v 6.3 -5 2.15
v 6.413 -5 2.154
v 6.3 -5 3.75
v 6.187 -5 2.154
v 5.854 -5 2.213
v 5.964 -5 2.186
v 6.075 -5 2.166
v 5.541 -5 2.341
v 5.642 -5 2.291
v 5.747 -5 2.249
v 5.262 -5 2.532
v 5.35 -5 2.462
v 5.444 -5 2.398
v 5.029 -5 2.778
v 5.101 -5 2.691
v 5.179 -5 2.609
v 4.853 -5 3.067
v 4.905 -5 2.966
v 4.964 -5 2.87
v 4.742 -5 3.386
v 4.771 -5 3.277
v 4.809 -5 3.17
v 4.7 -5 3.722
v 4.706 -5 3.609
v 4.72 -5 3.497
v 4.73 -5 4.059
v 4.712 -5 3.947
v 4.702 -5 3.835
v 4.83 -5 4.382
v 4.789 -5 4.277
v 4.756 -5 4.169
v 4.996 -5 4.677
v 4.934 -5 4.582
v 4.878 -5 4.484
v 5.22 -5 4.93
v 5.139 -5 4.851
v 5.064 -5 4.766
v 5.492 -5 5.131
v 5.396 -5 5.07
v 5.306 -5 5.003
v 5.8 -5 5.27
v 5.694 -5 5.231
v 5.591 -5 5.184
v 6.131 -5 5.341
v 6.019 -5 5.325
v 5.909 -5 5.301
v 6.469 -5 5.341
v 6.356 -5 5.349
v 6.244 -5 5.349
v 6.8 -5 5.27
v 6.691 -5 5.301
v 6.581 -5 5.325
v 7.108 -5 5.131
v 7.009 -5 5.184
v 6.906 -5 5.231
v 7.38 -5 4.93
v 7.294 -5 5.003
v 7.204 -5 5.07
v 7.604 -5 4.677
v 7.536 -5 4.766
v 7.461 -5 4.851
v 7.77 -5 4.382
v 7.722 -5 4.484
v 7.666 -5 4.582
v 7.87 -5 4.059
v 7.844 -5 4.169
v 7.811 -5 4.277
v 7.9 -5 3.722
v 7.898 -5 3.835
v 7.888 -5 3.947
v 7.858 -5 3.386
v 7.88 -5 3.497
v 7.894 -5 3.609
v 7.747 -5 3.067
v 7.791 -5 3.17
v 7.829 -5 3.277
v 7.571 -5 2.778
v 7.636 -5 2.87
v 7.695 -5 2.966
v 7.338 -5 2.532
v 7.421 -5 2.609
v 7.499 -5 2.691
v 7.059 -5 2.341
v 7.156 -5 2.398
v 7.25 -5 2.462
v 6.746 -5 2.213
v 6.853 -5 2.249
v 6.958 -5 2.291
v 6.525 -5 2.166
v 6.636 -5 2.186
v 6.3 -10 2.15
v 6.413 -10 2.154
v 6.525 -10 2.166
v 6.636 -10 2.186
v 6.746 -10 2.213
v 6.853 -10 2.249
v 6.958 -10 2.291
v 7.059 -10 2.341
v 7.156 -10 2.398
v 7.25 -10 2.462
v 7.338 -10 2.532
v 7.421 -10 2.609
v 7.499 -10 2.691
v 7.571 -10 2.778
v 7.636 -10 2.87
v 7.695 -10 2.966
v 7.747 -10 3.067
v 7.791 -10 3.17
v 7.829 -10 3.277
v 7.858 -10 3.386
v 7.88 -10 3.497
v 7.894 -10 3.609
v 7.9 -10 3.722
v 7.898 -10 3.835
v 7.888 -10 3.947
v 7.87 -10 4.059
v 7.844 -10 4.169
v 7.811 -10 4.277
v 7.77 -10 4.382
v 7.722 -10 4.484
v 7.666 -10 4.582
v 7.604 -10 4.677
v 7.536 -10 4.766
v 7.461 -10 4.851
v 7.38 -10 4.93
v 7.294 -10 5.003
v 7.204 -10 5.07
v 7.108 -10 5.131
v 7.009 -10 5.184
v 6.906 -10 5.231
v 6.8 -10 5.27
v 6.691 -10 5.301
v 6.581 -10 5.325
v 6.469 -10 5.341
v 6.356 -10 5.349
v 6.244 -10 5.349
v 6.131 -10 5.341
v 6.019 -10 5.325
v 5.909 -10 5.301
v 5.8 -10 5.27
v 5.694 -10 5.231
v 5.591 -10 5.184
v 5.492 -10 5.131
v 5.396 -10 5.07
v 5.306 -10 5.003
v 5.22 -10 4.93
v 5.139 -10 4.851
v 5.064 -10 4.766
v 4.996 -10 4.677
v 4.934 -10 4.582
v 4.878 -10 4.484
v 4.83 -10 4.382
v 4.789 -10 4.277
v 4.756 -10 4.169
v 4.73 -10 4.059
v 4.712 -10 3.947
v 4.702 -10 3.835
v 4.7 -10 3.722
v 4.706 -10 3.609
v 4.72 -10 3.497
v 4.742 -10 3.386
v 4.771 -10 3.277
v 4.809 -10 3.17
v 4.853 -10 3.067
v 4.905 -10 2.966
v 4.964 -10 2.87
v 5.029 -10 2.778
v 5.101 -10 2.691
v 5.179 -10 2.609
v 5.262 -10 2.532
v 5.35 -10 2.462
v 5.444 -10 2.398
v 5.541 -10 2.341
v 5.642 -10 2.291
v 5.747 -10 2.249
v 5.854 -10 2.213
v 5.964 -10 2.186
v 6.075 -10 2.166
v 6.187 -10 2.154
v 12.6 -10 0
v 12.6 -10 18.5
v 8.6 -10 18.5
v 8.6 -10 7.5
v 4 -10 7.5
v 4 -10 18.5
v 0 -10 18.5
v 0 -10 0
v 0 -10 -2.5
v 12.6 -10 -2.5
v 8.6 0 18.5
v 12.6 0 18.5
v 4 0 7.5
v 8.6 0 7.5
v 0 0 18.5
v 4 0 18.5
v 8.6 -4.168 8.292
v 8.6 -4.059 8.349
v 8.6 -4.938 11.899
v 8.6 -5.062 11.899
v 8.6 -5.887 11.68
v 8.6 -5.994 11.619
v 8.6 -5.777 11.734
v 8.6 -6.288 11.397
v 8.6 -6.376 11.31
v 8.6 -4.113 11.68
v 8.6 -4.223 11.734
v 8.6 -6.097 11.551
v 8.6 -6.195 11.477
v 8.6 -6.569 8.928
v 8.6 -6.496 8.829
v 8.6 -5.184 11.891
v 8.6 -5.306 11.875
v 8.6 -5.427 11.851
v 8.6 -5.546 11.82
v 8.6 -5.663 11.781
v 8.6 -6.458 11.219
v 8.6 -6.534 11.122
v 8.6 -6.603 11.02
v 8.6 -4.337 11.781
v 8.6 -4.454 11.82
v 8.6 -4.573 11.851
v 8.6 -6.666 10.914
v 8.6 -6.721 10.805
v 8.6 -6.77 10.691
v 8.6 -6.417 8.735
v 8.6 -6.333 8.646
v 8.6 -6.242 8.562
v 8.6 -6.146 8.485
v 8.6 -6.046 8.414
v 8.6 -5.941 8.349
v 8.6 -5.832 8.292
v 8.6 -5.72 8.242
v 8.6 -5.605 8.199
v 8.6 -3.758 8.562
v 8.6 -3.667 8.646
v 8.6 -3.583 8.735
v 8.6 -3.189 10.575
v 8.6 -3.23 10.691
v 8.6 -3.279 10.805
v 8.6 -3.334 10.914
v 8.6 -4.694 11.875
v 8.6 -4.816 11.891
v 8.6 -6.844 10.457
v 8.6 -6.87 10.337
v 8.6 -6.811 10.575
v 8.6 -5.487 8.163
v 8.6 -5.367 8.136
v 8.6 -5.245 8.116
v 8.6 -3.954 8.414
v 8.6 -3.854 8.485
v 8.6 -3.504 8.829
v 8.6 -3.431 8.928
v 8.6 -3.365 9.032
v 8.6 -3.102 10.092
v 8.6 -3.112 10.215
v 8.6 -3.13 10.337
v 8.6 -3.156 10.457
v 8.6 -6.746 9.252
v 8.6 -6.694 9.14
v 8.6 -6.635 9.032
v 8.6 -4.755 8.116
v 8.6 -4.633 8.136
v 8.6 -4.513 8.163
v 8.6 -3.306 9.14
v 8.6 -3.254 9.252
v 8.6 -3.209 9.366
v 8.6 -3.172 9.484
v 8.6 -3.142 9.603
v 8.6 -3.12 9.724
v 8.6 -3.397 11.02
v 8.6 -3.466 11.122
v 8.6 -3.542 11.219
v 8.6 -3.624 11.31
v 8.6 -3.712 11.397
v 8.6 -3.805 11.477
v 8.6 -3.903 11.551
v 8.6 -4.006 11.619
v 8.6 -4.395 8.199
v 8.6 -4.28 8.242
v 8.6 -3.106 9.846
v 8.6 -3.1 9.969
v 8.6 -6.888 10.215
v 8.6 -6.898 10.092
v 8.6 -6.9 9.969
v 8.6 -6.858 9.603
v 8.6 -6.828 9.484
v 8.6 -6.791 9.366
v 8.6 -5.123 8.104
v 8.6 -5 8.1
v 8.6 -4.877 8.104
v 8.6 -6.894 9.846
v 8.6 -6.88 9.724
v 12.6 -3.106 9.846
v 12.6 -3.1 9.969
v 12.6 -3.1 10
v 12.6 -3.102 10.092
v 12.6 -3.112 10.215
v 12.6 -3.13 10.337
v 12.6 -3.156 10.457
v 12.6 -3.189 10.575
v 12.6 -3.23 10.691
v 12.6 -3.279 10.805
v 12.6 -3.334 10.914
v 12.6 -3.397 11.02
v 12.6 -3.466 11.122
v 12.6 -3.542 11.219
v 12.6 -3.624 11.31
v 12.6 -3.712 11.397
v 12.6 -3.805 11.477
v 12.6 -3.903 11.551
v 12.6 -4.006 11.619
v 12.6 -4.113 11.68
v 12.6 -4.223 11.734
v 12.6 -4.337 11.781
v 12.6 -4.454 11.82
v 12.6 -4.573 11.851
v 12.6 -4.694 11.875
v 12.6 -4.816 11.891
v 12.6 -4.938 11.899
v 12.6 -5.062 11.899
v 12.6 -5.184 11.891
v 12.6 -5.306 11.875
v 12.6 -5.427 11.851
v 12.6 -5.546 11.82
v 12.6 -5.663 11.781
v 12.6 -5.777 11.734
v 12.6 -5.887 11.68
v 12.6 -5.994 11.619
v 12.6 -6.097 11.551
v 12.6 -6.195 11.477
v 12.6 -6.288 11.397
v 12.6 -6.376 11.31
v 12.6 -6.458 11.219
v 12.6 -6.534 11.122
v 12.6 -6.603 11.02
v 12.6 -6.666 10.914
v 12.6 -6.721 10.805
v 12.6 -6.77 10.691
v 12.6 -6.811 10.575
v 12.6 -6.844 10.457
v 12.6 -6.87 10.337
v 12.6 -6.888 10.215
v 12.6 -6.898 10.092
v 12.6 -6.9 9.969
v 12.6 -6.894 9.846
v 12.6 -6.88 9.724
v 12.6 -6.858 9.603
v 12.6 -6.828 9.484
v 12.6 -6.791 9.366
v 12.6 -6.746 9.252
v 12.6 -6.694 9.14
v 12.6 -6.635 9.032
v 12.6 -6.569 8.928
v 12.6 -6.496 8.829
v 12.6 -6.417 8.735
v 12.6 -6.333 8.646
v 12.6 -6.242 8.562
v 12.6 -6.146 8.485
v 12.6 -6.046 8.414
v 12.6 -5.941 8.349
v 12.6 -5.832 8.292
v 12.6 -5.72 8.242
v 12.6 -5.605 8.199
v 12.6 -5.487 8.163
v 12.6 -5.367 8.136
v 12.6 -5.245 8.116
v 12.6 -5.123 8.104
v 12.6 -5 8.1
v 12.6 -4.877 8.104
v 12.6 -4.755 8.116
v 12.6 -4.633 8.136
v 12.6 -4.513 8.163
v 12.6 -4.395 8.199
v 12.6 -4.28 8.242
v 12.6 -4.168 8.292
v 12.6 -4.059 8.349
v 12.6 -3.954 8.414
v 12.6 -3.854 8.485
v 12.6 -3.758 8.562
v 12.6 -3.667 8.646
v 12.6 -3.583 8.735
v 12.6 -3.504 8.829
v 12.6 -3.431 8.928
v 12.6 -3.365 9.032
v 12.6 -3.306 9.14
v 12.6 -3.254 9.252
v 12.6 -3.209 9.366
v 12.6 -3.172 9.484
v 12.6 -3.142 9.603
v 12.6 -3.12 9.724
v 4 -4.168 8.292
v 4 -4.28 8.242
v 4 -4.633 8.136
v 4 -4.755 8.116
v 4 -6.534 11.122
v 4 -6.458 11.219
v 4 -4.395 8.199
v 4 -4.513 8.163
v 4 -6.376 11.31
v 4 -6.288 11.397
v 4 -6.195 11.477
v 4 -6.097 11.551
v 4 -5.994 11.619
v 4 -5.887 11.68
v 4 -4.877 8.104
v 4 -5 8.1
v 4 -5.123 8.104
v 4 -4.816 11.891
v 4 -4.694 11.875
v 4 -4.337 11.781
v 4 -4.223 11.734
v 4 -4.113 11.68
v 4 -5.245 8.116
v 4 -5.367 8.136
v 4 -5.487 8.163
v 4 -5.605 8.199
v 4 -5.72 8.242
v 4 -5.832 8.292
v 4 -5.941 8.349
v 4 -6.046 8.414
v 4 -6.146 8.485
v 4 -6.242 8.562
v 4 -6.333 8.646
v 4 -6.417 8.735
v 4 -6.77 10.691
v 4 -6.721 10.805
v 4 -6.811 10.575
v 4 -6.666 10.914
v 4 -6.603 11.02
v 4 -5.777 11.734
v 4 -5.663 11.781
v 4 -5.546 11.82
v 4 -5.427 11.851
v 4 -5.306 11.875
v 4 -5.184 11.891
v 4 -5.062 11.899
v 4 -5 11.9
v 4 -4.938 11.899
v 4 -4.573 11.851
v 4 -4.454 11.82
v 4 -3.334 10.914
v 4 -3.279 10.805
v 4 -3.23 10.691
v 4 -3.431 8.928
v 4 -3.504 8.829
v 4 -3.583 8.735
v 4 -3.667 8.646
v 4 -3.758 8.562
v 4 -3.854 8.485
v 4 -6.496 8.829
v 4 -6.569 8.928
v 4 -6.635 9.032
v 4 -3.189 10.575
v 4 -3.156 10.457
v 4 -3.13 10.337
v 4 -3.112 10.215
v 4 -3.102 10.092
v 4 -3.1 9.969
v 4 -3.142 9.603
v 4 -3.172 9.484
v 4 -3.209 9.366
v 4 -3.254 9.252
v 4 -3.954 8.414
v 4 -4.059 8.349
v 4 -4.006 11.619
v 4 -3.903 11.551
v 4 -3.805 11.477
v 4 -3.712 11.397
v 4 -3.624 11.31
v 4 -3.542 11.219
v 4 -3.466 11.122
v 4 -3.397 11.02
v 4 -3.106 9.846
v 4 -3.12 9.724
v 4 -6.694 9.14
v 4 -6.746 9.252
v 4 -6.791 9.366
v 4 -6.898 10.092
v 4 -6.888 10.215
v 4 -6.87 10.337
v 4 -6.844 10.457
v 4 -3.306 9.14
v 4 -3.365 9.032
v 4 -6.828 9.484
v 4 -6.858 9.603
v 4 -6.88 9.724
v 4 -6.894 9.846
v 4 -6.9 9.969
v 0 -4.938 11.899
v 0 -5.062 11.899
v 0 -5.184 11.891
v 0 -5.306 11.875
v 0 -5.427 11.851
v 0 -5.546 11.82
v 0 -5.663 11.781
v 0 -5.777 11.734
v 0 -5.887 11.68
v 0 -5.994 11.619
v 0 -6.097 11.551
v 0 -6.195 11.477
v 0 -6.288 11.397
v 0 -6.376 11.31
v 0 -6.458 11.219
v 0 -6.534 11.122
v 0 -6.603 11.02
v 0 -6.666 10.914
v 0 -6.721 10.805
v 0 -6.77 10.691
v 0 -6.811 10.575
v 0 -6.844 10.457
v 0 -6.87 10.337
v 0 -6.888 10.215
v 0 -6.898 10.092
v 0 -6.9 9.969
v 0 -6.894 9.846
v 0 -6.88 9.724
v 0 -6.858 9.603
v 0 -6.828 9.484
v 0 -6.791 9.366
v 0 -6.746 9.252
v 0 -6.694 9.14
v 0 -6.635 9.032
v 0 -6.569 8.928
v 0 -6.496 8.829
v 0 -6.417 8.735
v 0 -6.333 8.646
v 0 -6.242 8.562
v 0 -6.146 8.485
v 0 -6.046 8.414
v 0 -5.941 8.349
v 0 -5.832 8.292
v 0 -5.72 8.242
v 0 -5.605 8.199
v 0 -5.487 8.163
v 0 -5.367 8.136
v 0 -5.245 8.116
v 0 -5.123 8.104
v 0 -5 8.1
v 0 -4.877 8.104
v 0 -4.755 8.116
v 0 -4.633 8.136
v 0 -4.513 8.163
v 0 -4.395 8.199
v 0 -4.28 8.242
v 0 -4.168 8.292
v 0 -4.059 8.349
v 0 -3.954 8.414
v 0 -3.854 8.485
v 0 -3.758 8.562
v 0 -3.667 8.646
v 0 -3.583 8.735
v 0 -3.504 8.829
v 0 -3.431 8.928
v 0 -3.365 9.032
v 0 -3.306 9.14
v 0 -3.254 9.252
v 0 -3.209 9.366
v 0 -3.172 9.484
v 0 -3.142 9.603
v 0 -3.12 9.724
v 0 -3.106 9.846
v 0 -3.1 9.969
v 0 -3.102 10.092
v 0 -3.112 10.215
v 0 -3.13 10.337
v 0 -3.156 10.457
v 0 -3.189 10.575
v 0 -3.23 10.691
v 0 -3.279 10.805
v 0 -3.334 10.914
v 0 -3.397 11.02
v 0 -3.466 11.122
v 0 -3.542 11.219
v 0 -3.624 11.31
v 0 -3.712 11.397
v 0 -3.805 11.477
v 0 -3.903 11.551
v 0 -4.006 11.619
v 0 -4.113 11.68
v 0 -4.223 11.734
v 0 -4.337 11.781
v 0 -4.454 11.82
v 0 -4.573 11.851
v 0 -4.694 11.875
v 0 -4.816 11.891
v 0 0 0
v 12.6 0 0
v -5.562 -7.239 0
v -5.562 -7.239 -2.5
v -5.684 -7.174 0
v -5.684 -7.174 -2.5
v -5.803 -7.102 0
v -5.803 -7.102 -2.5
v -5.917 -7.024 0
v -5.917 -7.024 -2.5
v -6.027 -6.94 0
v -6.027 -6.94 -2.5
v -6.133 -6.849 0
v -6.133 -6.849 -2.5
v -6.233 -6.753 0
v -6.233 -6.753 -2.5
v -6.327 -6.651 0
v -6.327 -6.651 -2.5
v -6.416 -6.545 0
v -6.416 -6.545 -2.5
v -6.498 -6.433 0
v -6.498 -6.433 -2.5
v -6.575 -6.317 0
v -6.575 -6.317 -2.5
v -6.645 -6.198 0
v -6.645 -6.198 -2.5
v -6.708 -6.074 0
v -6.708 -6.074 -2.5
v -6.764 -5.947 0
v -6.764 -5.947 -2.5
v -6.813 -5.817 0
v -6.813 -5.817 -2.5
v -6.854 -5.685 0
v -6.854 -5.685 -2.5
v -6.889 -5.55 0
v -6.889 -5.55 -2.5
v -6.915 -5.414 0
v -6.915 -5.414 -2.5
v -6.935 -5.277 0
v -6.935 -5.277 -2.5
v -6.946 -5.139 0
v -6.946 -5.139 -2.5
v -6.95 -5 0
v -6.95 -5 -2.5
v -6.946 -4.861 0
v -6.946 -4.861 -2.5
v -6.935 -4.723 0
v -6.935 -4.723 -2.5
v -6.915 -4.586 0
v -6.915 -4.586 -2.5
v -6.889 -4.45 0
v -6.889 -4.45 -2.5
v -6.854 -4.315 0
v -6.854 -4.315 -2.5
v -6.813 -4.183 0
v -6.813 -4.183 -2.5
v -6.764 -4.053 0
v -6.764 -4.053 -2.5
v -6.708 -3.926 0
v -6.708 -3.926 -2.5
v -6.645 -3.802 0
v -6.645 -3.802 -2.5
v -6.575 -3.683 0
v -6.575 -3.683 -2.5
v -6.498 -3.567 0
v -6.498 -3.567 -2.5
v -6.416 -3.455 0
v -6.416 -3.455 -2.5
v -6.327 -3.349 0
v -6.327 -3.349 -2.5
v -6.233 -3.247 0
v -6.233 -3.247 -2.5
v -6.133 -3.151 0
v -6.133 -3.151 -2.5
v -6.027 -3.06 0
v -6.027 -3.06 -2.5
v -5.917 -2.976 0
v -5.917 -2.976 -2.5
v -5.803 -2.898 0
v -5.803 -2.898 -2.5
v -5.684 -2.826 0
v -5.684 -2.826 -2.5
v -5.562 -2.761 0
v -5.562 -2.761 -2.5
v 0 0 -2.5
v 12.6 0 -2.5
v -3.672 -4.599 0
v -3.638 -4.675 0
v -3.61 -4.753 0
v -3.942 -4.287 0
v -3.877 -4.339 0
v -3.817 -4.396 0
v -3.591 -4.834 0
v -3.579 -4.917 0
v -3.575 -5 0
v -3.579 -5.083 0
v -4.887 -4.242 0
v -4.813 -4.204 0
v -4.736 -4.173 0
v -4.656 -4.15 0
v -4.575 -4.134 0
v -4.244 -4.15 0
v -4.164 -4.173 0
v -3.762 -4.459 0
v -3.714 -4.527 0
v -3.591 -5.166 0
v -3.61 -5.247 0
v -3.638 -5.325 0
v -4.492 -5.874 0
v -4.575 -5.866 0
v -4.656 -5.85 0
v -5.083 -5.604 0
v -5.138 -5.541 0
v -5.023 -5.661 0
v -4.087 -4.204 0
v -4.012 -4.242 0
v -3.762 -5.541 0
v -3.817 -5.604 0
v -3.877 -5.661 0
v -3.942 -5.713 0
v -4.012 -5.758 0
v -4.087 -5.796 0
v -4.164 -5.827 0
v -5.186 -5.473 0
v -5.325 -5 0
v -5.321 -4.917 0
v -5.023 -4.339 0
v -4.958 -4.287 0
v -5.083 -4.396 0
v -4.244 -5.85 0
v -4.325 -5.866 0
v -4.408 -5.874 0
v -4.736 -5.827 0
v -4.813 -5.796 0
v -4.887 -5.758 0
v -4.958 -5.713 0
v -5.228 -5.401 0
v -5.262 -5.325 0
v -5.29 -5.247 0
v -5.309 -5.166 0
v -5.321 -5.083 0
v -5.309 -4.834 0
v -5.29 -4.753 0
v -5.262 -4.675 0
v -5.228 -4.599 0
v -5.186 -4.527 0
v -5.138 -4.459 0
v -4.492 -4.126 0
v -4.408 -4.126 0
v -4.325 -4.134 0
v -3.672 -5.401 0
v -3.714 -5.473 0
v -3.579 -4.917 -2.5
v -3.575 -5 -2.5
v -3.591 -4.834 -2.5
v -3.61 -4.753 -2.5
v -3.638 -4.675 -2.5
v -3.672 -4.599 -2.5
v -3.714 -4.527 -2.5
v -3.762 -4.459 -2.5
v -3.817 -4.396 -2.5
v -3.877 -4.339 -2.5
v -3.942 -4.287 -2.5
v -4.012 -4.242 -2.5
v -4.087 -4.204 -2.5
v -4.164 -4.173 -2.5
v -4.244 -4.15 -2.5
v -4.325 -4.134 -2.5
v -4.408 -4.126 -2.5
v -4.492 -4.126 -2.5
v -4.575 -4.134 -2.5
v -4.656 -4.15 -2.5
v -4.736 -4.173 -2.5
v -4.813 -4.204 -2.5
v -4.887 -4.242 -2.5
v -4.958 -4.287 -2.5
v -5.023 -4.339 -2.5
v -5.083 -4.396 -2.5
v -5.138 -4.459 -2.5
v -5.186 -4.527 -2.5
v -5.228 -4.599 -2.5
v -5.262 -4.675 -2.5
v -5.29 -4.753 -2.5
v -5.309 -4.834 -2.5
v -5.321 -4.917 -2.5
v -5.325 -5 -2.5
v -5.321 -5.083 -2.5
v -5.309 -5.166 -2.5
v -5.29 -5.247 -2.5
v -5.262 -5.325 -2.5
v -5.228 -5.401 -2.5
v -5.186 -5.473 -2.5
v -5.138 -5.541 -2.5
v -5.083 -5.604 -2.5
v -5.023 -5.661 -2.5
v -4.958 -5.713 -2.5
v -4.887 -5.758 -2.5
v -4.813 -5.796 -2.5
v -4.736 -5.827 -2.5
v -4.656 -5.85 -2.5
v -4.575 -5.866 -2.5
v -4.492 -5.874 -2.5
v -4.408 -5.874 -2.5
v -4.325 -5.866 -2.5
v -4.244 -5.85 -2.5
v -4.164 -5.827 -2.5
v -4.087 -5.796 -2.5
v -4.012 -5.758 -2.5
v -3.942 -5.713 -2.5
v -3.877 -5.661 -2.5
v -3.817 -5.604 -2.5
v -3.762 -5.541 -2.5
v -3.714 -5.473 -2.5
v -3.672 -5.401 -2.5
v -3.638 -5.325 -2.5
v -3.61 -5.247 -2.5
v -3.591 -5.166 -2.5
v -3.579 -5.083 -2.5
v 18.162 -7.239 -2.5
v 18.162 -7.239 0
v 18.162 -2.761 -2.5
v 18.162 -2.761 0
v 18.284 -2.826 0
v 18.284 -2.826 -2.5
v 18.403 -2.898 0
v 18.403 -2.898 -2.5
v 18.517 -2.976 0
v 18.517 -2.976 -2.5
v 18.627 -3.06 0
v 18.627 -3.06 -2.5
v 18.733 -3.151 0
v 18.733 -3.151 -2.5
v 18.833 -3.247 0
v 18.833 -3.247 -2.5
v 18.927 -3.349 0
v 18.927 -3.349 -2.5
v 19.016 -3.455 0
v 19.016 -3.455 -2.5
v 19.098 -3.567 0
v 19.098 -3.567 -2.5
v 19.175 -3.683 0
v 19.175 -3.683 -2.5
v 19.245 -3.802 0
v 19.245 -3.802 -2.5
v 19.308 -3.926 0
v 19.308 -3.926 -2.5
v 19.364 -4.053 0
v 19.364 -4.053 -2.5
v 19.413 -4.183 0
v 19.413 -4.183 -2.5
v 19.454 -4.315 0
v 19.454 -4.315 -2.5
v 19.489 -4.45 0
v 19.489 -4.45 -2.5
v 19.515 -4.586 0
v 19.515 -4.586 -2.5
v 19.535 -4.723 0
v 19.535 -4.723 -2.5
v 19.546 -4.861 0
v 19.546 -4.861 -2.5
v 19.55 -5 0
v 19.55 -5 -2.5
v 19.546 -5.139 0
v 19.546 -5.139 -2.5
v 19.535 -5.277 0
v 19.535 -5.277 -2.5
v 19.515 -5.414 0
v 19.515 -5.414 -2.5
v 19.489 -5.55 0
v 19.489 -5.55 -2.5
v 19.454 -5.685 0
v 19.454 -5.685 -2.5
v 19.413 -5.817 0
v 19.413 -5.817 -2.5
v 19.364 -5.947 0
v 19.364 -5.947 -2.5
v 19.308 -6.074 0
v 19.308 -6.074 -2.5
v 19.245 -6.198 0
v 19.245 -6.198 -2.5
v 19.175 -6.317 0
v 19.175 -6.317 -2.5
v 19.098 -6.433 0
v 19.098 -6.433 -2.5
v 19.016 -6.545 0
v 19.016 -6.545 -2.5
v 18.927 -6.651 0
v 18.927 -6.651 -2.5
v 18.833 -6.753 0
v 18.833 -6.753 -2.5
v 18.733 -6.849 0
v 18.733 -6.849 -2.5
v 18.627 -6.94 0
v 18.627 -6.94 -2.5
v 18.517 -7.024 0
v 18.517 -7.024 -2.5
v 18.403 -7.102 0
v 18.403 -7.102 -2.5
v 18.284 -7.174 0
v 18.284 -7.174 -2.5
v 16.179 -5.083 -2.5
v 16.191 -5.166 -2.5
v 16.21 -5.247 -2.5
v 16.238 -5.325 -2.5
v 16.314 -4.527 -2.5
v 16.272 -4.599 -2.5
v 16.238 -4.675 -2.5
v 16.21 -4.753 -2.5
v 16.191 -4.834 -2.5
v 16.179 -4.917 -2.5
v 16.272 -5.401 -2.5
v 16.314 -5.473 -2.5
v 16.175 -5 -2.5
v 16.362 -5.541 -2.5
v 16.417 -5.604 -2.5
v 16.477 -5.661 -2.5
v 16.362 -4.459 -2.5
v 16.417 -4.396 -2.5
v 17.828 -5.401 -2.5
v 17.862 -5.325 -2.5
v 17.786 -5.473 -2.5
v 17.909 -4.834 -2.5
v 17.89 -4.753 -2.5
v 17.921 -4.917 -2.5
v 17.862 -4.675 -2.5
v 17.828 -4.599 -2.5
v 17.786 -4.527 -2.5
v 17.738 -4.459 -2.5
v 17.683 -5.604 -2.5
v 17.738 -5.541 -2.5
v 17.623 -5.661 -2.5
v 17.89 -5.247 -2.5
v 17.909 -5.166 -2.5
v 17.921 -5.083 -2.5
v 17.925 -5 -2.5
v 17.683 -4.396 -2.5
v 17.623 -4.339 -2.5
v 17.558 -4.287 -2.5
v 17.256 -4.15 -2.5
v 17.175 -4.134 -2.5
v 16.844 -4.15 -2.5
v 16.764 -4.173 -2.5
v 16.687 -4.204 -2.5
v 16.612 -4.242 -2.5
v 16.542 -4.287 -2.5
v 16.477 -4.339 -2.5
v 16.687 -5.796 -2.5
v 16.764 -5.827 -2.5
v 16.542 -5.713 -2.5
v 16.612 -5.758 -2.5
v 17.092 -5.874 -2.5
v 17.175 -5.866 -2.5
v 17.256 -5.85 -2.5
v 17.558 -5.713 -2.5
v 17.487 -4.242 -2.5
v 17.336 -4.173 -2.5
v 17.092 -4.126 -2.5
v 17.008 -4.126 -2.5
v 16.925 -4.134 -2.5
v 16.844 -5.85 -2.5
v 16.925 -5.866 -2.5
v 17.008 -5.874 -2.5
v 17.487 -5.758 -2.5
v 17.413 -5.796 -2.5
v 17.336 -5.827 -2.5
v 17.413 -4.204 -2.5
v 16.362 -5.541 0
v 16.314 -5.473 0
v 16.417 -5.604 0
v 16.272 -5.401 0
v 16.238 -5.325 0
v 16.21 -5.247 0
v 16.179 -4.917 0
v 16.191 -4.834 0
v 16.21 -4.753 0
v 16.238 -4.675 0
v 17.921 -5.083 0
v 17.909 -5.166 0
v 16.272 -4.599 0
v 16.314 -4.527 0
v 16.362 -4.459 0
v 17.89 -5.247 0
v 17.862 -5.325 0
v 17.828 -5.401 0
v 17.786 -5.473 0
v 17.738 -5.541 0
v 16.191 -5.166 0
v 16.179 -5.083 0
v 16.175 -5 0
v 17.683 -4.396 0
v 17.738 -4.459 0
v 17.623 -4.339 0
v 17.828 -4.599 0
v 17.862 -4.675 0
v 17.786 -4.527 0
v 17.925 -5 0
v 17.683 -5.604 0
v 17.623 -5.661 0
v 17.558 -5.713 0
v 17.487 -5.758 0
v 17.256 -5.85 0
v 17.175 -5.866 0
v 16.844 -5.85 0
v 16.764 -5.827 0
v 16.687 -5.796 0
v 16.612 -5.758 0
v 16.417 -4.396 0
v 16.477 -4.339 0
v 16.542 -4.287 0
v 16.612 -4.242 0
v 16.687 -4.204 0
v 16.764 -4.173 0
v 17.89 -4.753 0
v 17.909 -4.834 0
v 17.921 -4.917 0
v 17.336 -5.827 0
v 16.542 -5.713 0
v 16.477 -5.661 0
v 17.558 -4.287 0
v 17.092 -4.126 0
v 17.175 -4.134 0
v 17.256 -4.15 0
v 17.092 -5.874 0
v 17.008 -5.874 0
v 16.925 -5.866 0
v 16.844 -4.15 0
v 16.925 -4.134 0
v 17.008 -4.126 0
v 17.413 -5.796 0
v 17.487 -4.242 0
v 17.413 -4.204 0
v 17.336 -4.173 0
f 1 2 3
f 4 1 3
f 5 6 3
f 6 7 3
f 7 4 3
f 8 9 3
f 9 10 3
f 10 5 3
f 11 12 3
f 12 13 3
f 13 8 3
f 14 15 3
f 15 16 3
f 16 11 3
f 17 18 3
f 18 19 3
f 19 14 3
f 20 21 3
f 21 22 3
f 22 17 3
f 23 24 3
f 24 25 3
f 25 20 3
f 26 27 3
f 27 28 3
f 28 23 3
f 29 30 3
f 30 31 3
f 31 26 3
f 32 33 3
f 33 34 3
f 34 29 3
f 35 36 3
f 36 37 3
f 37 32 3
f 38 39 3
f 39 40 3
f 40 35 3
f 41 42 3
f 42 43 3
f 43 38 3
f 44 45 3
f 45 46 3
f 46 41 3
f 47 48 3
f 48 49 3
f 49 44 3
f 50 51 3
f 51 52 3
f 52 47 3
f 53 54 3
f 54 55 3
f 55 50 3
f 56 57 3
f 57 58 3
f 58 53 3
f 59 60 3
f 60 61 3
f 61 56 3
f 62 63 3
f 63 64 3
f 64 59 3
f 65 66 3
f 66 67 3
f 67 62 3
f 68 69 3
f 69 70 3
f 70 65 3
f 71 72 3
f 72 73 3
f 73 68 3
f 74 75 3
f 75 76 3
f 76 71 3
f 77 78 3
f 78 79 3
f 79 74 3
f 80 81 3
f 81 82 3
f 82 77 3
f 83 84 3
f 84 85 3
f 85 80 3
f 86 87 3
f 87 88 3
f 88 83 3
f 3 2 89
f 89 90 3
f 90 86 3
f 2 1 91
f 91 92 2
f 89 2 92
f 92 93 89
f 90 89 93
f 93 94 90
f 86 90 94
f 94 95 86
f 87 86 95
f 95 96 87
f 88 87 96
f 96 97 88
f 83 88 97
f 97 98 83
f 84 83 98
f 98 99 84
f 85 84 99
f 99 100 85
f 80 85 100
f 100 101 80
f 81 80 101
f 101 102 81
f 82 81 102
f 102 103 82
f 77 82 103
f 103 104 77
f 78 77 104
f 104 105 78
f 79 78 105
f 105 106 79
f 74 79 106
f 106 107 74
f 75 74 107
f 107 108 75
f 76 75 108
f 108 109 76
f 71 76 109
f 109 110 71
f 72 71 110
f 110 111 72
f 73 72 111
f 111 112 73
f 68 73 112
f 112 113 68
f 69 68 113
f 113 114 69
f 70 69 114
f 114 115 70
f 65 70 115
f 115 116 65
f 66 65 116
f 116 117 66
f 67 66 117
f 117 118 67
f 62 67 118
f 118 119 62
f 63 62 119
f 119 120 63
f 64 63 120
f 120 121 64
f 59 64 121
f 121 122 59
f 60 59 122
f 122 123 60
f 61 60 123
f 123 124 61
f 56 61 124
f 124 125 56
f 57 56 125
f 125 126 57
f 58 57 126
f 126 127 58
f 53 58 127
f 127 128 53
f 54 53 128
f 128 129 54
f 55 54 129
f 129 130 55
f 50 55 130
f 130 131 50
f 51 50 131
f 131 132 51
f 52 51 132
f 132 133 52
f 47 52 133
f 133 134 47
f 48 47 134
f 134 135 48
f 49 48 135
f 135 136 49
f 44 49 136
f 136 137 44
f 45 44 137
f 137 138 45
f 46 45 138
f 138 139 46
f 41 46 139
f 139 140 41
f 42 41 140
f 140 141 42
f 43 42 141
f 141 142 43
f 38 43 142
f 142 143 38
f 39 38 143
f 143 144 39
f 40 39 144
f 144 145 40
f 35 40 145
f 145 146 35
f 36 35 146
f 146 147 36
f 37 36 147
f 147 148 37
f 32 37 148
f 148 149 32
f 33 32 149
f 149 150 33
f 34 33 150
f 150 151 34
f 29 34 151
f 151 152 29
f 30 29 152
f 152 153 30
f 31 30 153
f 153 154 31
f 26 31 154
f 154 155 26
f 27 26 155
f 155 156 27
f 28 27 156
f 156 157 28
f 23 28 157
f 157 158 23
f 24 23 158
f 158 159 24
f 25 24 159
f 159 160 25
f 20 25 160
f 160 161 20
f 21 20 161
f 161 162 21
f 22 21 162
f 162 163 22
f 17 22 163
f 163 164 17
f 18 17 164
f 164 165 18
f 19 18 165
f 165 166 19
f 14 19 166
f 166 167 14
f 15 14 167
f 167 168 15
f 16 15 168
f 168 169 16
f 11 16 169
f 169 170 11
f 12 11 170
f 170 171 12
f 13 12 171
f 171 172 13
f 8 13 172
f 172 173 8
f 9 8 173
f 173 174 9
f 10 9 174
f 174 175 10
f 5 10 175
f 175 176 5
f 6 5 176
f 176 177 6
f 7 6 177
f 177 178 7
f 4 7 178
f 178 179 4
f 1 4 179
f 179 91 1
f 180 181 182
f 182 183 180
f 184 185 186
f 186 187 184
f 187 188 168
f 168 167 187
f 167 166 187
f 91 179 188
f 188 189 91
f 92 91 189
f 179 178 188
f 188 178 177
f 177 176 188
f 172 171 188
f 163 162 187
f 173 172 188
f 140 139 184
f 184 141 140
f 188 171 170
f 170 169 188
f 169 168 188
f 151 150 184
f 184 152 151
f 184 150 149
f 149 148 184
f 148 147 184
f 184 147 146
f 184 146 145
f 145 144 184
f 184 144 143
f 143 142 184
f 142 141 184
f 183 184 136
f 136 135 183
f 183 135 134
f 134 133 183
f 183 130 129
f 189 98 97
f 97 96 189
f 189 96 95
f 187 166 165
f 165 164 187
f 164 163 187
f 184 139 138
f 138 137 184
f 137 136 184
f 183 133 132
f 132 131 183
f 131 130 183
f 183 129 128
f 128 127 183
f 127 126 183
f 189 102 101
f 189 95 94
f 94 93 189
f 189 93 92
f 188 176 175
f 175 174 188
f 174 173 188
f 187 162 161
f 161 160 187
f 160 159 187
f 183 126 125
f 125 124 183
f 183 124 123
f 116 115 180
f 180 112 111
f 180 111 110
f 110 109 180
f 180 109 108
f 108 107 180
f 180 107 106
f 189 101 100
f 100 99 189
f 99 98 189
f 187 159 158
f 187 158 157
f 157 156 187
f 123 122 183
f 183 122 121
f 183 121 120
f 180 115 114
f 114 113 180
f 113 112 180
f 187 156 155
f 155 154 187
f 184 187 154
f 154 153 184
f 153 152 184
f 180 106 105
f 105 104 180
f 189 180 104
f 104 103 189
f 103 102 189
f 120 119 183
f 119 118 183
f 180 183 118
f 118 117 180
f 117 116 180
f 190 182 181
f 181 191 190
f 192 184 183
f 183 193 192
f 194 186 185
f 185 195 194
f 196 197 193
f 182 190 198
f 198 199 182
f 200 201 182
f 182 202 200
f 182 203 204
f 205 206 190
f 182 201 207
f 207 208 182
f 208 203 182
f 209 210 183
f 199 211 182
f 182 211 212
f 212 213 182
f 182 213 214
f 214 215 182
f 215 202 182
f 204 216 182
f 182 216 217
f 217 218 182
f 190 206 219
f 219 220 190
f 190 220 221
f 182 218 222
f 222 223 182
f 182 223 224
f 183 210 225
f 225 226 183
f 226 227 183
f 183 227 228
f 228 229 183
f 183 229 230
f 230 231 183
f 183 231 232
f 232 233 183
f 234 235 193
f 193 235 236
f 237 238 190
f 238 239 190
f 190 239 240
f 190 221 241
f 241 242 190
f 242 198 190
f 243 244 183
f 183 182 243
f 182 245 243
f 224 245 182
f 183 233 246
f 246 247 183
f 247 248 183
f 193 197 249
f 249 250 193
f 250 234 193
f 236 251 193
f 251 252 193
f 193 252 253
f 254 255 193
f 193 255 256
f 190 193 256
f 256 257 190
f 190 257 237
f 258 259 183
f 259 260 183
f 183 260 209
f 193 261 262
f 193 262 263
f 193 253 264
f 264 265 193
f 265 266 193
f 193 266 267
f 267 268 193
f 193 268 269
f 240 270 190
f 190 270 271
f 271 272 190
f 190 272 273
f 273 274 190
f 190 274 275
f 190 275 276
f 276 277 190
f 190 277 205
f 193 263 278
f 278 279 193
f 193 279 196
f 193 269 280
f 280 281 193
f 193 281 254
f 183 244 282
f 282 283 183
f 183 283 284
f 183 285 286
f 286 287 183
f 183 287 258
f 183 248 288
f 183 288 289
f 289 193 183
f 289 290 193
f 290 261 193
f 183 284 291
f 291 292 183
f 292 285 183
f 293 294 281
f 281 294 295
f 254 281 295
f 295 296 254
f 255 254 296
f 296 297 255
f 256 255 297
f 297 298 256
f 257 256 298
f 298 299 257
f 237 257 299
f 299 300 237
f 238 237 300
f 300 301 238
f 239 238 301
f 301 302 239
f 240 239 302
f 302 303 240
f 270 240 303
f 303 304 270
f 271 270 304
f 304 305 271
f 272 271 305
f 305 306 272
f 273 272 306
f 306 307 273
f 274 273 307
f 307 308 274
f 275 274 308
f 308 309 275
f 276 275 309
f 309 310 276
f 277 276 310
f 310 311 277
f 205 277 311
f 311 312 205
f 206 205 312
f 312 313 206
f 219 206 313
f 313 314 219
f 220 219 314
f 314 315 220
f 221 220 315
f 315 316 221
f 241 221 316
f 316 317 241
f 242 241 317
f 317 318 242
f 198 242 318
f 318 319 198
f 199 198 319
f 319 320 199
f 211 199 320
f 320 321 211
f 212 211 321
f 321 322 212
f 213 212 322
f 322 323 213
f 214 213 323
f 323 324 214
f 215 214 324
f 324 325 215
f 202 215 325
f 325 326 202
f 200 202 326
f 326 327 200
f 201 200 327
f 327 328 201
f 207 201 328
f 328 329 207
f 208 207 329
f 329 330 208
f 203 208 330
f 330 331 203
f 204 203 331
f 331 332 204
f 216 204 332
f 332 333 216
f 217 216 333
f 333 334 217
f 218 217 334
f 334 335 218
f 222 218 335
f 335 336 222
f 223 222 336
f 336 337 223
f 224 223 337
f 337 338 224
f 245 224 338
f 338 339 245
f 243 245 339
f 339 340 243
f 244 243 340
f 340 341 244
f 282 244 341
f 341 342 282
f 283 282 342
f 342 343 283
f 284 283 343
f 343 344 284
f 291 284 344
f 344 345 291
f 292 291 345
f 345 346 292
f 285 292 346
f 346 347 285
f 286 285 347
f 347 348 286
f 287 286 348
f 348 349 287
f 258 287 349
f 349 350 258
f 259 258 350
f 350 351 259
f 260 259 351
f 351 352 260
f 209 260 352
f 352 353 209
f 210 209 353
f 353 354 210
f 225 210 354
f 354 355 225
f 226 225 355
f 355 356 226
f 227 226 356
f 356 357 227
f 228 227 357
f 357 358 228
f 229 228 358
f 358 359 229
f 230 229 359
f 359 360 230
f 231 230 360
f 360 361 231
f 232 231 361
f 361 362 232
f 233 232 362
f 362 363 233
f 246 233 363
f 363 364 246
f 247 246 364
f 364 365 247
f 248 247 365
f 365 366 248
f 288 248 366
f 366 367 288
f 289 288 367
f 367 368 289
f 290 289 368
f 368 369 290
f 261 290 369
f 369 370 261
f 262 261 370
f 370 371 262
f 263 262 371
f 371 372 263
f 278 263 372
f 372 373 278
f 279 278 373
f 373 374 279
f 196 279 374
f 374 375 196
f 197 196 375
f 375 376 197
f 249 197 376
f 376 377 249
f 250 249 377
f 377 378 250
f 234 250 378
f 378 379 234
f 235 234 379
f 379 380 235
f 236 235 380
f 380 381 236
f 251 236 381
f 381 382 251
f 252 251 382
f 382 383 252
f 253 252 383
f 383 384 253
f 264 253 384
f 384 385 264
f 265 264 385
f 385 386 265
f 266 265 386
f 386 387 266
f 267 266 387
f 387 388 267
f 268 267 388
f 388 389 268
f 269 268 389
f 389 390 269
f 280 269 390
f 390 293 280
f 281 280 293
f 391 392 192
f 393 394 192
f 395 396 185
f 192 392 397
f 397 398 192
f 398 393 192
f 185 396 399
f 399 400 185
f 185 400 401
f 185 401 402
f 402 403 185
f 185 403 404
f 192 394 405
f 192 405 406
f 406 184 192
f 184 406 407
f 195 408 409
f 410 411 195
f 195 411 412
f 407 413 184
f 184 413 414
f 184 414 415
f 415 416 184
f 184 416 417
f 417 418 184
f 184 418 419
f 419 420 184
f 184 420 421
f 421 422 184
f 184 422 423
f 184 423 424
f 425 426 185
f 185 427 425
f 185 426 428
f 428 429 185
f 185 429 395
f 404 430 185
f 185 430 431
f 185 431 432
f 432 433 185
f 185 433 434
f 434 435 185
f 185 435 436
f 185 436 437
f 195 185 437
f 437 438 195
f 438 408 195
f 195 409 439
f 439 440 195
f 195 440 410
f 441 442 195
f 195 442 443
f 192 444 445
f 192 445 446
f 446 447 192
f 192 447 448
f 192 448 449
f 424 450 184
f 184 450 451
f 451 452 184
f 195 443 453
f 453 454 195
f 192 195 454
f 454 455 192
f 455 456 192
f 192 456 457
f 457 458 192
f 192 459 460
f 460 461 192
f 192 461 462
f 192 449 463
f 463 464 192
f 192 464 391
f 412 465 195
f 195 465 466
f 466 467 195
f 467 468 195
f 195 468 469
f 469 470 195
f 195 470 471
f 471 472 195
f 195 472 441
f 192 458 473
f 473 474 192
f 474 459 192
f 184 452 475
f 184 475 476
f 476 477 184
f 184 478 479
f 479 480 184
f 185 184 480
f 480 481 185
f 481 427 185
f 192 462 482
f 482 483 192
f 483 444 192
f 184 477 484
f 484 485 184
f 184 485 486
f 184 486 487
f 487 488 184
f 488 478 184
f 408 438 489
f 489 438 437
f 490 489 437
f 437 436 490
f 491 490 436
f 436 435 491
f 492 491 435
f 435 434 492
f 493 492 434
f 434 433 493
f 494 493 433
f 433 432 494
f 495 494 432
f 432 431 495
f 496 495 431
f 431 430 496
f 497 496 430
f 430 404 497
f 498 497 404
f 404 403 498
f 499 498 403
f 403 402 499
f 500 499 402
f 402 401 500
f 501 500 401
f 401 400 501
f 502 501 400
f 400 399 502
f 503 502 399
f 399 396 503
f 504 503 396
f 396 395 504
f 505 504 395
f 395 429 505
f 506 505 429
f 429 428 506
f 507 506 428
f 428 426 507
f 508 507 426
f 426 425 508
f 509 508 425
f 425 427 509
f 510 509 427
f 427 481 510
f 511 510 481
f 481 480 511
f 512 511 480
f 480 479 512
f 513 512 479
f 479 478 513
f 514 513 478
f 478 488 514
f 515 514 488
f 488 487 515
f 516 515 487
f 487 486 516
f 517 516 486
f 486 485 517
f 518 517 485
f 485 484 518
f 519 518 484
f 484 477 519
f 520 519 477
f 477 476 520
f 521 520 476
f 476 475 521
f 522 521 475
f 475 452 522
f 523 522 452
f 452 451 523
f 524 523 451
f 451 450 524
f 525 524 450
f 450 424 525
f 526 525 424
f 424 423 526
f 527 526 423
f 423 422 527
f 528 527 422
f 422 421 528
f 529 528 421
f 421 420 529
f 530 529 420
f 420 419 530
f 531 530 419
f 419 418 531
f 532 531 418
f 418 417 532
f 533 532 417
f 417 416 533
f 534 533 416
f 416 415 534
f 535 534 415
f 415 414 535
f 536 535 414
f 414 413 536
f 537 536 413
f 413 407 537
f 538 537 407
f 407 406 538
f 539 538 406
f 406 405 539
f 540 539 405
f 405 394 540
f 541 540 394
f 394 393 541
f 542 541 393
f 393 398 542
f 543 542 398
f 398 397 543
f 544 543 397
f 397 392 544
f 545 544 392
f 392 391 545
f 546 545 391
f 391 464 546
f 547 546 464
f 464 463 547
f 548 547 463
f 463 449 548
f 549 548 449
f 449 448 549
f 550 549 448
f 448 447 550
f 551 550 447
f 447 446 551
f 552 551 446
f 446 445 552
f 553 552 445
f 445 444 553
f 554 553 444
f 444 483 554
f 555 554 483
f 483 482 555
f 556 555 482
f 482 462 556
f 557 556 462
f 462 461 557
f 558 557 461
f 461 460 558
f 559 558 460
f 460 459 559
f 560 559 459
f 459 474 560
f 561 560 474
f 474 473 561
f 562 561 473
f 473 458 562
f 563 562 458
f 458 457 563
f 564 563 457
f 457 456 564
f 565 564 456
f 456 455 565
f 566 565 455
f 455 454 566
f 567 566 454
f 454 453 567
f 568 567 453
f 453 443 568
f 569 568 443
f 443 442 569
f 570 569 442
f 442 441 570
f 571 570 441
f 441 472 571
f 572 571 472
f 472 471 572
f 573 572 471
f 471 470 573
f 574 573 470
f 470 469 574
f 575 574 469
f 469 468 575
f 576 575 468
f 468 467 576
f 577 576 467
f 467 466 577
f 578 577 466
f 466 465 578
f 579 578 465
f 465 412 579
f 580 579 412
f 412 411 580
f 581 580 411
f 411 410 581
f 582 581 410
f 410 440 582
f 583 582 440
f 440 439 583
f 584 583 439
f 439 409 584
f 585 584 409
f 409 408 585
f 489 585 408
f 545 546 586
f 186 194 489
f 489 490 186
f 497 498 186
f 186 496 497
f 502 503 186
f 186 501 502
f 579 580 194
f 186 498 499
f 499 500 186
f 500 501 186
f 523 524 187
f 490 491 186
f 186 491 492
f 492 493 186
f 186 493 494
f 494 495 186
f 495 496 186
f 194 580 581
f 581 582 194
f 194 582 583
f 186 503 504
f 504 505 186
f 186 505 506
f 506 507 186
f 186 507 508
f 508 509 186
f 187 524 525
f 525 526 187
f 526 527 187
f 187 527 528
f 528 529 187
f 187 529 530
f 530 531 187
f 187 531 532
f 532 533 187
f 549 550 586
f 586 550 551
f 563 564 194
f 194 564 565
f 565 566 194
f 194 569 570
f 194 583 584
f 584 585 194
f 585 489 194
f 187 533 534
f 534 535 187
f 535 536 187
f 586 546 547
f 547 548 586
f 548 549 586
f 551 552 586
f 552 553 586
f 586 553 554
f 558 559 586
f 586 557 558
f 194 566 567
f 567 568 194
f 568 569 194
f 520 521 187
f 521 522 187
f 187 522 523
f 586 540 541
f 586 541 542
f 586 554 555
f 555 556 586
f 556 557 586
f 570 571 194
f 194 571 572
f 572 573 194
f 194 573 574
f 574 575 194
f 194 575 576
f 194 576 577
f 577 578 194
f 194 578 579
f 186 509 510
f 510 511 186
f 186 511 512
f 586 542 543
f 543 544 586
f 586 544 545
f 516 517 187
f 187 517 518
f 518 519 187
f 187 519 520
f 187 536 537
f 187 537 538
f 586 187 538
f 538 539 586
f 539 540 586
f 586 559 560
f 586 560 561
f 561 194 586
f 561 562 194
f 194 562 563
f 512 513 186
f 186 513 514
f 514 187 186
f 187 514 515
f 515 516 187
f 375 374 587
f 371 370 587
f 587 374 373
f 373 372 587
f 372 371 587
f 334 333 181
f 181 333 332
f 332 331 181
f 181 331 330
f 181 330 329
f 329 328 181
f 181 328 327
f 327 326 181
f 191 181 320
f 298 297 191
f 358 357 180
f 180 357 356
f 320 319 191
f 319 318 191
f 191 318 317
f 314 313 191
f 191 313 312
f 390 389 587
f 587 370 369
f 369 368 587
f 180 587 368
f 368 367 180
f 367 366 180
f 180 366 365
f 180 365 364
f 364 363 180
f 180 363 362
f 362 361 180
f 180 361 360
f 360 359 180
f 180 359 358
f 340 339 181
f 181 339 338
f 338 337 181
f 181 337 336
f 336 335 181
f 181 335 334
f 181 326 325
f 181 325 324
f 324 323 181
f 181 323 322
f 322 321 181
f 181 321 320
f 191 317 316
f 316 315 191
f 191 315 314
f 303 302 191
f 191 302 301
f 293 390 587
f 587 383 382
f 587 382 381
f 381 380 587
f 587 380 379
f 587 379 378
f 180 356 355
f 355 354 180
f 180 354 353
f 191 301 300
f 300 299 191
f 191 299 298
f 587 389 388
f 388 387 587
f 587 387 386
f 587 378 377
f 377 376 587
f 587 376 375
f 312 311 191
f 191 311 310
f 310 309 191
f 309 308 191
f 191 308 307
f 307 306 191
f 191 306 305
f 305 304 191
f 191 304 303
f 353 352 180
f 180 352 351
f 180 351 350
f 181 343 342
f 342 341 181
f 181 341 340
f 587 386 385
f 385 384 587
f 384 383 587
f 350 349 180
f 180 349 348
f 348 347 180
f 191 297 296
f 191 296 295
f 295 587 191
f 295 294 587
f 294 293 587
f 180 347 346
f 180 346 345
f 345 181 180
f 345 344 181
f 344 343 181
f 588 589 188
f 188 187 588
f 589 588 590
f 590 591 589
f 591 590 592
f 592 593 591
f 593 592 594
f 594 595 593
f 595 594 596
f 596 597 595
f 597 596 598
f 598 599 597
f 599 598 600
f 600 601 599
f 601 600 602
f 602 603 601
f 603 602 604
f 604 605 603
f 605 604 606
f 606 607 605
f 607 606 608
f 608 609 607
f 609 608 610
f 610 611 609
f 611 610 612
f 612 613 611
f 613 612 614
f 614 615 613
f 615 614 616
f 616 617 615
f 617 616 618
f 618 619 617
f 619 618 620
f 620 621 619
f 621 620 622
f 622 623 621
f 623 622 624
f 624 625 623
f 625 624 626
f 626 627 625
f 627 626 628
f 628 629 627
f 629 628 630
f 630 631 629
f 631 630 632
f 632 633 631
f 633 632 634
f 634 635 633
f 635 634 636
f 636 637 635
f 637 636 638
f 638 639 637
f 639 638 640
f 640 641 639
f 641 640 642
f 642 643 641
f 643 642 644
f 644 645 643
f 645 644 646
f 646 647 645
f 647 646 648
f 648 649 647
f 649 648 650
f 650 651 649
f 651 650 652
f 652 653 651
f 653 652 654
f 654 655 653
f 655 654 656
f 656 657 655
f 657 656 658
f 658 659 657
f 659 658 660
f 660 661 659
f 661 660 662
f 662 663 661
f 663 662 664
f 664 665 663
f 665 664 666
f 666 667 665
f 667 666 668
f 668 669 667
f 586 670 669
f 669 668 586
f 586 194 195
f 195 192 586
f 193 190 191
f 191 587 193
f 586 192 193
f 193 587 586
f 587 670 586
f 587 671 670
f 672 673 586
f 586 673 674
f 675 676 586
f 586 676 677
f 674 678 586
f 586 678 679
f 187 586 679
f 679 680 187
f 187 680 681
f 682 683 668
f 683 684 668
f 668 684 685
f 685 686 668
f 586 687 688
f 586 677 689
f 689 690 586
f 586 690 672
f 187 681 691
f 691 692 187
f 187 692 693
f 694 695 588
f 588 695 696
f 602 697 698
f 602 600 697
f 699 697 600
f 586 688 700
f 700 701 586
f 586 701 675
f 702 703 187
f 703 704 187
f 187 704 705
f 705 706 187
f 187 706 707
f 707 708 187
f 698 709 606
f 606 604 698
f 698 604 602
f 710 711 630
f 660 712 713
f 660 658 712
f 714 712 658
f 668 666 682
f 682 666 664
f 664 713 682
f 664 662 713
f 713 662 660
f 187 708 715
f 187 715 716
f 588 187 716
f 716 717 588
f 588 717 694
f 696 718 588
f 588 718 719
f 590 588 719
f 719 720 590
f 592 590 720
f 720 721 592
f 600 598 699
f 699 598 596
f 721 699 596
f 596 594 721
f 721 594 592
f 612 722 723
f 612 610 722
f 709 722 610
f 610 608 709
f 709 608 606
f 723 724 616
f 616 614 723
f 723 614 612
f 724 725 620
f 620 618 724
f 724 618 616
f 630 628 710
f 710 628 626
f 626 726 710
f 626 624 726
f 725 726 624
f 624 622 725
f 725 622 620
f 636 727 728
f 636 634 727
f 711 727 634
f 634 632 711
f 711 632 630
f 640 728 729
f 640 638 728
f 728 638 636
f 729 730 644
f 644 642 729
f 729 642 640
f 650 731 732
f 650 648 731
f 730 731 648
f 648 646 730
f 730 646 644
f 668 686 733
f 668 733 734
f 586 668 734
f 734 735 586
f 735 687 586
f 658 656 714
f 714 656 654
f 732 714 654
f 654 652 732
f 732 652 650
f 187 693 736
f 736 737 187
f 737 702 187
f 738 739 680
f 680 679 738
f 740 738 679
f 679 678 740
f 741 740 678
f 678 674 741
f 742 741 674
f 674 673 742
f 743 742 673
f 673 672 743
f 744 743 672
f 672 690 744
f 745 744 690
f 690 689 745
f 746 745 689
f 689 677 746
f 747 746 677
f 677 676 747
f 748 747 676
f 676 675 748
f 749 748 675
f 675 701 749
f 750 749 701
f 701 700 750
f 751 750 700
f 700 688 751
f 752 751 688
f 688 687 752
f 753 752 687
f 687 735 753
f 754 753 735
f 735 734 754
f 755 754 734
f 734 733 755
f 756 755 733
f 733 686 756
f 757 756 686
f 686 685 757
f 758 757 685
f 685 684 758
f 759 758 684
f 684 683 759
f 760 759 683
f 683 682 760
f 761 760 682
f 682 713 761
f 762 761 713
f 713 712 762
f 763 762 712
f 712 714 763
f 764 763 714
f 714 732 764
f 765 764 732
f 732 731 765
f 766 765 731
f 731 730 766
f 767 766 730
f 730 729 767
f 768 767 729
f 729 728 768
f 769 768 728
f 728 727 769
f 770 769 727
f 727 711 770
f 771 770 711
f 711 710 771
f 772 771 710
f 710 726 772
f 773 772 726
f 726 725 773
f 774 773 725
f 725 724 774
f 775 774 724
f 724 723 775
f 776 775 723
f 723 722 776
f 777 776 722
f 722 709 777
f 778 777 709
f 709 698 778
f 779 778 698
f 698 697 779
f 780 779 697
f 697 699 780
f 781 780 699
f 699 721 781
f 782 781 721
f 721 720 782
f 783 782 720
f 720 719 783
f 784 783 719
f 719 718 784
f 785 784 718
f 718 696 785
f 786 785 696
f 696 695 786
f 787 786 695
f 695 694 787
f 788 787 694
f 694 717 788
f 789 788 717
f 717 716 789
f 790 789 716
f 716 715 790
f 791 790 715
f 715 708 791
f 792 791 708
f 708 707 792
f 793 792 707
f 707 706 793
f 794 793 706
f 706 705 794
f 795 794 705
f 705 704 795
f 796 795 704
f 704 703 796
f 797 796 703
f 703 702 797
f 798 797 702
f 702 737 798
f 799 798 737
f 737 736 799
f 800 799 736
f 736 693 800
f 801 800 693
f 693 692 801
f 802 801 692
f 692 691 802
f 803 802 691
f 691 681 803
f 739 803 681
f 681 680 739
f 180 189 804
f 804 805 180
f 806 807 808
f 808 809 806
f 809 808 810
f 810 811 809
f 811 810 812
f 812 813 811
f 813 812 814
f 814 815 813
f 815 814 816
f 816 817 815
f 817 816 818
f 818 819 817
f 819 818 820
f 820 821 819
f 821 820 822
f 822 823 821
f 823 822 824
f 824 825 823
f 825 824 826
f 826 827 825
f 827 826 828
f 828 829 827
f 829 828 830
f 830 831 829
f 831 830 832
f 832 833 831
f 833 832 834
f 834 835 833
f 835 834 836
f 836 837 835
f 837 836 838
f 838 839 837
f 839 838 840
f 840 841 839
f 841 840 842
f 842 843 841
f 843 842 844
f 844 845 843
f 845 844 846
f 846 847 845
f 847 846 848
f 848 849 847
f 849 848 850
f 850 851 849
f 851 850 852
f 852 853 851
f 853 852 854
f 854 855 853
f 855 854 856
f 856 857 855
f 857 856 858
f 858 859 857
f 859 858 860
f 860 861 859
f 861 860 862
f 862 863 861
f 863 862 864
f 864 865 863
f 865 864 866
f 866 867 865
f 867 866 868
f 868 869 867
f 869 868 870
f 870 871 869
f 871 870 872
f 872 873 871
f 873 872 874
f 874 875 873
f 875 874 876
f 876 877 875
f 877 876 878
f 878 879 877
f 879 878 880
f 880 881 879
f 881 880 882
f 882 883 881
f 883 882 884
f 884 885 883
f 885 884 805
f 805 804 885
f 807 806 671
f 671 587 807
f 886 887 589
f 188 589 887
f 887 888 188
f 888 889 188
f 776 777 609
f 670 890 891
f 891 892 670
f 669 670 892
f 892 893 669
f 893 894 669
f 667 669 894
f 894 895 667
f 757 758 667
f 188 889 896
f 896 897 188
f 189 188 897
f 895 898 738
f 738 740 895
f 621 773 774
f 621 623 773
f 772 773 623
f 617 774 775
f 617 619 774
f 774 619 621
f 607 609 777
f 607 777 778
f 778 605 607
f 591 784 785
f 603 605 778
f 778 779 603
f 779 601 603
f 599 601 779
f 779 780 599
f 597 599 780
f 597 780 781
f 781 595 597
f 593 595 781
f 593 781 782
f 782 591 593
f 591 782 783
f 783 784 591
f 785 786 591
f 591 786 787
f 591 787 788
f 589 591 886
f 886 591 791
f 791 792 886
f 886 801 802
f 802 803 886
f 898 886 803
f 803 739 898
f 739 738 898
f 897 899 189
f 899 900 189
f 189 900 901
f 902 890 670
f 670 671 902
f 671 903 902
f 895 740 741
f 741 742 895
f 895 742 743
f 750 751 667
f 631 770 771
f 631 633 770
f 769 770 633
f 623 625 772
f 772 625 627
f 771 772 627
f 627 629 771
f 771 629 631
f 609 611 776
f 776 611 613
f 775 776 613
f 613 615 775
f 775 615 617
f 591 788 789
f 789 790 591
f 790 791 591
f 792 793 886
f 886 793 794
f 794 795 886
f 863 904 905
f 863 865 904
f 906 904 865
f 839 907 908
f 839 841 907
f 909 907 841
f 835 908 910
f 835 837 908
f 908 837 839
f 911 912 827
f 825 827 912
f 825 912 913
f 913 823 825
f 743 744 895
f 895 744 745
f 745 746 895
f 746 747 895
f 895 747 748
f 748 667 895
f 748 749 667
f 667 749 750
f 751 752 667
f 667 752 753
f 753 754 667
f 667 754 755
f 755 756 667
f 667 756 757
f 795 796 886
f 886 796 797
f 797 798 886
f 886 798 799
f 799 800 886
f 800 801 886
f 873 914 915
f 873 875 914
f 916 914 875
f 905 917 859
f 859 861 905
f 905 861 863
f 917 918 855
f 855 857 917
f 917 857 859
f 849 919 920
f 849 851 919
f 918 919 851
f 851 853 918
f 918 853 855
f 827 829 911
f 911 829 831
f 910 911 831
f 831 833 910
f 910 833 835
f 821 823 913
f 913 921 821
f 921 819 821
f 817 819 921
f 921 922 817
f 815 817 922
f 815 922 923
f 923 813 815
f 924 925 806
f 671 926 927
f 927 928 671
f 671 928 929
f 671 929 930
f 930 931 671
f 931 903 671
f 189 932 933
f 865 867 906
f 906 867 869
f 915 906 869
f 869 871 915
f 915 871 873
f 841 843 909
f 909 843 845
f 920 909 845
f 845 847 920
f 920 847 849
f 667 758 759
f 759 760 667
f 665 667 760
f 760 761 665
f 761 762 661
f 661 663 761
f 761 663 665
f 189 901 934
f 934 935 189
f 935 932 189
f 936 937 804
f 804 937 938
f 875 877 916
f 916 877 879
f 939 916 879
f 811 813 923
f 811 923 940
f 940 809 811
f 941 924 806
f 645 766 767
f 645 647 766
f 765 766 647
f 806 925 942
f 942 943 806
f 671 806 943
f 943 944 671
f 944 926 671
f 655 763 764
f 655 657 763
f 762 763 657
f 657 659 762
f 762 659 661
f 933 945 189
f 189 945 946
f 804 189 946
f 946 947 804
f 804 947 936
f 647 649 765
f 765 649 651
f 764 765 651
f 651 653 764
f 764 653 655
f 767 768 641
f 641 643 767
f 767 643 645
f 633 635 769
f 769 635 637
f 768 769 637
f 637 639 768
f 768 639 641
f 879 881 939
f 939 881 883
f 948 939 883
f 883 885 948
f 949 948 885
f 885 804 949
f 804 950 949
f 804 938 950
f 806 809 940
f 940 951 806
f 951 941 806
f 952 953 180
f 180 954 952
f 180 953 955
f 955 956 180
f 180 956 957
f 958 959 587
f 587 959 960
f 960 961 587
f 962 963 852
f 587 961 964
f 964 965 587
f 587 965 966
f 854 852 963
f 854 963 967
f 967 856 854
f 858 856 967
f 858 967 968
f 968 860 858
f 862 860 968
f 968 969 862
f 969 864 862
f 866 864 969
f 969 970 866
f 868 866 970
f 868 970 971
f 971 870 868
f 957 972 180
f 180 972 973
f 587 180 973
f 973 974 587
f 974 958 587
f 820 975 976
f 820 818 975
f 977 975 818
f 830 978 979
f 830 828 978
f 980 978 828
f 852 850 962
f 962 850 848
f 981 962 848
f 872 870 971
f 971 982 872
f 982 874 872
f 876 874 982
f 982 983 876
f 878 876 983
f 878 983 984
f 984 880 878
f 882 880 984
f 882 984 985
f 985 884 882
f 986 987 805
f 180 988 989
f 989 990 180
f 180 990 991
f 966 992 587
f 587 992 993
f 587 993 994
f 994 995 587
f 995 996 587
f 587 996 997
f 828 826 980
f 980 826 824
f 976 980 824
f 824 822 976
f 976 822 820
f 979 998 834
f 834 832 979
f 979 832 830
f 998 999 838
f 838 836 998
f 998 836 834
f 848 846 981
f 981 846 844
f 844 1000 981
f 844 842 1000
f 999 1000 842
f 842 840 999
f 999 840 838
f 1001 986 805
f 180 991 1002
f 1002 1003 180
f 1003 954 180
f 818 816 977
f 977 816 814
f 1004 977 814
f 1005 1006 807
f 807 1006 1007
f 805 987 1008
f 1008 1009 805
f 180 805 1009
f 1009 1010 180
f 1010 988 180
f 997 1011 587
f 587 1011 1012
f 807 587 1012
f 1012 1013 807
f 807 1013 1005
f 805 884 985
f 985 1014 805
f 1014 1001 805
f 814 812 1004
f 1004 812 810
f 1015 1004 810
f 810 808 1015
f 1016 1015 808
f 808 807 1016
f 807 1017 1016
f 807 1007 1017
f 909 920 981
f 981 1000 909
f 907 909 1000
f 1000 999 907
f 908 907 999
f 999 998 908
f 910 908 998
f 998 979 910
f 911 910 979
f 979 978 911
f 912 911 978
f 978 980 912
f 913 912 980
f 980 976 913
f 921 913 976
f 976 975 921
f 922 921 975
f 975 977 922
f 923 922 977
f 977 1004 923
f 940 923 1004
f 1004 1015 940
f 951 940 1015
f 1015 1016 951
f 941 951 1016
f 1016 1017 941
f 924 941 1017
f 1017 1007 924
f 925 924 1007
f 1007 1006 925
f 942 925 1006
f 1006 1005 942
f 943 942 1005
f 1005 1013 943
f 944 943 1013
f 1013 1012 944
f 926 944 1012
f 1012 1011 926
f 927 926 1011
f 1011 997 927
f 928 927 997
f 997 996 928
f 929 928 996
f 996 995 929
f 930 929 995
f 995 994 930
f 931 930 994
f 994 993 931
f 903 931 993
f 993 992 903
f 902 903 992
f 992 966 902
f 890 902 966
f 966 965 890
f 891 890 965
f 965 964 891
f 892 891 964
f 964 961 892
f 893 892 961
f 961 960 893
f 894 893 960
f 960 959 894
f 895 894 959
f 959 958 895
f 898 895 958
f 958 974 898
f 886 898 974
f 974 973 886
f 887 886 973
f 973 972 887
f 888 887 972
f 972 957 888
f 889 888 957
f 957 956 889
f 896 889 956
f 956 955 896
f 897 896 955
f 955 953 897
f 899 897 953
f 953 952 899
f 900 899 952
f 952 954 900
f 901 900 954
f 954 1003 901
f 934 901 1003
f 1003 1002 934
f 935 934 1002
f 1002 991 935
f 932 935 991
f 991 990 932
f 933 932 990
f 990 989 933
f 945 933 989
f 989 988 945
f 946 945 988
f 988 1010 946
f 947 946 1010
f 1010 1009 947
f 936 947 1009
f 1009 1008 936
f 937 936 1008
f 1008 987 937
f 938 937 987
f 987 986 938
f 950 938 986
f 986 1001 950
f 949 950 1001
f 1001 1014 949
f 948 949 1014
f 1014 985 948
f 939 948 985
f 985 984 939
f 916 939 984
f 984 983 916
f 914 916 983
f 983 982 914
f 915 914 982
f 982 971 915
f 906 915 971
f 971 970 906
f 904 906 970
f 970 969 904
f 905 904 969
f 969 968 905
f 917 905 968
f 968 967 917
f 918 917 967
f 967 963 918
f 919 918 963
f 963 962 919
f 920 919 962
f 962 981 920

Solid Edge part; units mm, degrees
sketch "Sketch1" plane through (0, 0, 0) normal (0, -1, 0) x (1, 0, 0)
  line L0 (8.6, 18.5) -> (8.6, 7.5)
  line L1 (8.6, 7.5) -> (4, 7.5)
  line L2 (4, 7.5) -> (4, 18.5)
  line L3 (4, 18.5) -> (0, 18.5)
  line L4 (0, 18.5) -> (0, 0)
  line L5 (0, 0) -> (12.6, 0)
  line L6 (12.6, 0) -> (12.6, 18.5)
  line L7 (12.6, 18.5) -> (8.6, 18.5)
extrude "Protrusion1" add sketch "Sketch1" along normal blind 10
sketch "Sketch2" plane through (12.6, -5, 7.5) normal (1, 0, 0) x (0, 1, 0)
  circle A0 centre (0, 2.5) radius 1.9
extrude "Cutout1" cut sketch "Sketch2" against normal through all
sketch "Sketch3" plane through (6.3, -5, 0) normal (0, 0, -1) x (1, 0, 0)
  line L0 (-6.3, -5) -> (-11.8616, -2.2393)
  line L1 (-6.3, 5) -> (-11.8616, 2.2393)
  line L2 (-6.3, 5) -> (6.3, 5)
  line L3 (6.3, 5) -> (11.8616, 2.2393)
  line L4 (6.3, -5) -> (11.8616, -2.2393)
  line L5 (-6.3, -5) -> (6.3, -5)
  arc A0 (-11.8616, -2.2393) -> (-11.8616, 2.2393) centre (-10.75, 0) cw
  arc A1 (11.8616, 2.2393) -> (11.8616, -2.2393) centre (10.75, 0) cw
  circle A2 centre (-10.75, 0) radius 0.875
  circle A3 centre (10.75, 0) radius 0.875
extrude "ExtrudedProtrusion_4" add sketch "Sketch3" along normal blind 2.5
sketch "Sketch4" plane through (6.3, -10, 8) normal (0, -1, 0) x (0, 0, -1)
  circle A0 centre (4.25, 0) radius 1.6
extrude "ExtrudedCutout_2" cut sketch "Sketch4" against normal blind 5
